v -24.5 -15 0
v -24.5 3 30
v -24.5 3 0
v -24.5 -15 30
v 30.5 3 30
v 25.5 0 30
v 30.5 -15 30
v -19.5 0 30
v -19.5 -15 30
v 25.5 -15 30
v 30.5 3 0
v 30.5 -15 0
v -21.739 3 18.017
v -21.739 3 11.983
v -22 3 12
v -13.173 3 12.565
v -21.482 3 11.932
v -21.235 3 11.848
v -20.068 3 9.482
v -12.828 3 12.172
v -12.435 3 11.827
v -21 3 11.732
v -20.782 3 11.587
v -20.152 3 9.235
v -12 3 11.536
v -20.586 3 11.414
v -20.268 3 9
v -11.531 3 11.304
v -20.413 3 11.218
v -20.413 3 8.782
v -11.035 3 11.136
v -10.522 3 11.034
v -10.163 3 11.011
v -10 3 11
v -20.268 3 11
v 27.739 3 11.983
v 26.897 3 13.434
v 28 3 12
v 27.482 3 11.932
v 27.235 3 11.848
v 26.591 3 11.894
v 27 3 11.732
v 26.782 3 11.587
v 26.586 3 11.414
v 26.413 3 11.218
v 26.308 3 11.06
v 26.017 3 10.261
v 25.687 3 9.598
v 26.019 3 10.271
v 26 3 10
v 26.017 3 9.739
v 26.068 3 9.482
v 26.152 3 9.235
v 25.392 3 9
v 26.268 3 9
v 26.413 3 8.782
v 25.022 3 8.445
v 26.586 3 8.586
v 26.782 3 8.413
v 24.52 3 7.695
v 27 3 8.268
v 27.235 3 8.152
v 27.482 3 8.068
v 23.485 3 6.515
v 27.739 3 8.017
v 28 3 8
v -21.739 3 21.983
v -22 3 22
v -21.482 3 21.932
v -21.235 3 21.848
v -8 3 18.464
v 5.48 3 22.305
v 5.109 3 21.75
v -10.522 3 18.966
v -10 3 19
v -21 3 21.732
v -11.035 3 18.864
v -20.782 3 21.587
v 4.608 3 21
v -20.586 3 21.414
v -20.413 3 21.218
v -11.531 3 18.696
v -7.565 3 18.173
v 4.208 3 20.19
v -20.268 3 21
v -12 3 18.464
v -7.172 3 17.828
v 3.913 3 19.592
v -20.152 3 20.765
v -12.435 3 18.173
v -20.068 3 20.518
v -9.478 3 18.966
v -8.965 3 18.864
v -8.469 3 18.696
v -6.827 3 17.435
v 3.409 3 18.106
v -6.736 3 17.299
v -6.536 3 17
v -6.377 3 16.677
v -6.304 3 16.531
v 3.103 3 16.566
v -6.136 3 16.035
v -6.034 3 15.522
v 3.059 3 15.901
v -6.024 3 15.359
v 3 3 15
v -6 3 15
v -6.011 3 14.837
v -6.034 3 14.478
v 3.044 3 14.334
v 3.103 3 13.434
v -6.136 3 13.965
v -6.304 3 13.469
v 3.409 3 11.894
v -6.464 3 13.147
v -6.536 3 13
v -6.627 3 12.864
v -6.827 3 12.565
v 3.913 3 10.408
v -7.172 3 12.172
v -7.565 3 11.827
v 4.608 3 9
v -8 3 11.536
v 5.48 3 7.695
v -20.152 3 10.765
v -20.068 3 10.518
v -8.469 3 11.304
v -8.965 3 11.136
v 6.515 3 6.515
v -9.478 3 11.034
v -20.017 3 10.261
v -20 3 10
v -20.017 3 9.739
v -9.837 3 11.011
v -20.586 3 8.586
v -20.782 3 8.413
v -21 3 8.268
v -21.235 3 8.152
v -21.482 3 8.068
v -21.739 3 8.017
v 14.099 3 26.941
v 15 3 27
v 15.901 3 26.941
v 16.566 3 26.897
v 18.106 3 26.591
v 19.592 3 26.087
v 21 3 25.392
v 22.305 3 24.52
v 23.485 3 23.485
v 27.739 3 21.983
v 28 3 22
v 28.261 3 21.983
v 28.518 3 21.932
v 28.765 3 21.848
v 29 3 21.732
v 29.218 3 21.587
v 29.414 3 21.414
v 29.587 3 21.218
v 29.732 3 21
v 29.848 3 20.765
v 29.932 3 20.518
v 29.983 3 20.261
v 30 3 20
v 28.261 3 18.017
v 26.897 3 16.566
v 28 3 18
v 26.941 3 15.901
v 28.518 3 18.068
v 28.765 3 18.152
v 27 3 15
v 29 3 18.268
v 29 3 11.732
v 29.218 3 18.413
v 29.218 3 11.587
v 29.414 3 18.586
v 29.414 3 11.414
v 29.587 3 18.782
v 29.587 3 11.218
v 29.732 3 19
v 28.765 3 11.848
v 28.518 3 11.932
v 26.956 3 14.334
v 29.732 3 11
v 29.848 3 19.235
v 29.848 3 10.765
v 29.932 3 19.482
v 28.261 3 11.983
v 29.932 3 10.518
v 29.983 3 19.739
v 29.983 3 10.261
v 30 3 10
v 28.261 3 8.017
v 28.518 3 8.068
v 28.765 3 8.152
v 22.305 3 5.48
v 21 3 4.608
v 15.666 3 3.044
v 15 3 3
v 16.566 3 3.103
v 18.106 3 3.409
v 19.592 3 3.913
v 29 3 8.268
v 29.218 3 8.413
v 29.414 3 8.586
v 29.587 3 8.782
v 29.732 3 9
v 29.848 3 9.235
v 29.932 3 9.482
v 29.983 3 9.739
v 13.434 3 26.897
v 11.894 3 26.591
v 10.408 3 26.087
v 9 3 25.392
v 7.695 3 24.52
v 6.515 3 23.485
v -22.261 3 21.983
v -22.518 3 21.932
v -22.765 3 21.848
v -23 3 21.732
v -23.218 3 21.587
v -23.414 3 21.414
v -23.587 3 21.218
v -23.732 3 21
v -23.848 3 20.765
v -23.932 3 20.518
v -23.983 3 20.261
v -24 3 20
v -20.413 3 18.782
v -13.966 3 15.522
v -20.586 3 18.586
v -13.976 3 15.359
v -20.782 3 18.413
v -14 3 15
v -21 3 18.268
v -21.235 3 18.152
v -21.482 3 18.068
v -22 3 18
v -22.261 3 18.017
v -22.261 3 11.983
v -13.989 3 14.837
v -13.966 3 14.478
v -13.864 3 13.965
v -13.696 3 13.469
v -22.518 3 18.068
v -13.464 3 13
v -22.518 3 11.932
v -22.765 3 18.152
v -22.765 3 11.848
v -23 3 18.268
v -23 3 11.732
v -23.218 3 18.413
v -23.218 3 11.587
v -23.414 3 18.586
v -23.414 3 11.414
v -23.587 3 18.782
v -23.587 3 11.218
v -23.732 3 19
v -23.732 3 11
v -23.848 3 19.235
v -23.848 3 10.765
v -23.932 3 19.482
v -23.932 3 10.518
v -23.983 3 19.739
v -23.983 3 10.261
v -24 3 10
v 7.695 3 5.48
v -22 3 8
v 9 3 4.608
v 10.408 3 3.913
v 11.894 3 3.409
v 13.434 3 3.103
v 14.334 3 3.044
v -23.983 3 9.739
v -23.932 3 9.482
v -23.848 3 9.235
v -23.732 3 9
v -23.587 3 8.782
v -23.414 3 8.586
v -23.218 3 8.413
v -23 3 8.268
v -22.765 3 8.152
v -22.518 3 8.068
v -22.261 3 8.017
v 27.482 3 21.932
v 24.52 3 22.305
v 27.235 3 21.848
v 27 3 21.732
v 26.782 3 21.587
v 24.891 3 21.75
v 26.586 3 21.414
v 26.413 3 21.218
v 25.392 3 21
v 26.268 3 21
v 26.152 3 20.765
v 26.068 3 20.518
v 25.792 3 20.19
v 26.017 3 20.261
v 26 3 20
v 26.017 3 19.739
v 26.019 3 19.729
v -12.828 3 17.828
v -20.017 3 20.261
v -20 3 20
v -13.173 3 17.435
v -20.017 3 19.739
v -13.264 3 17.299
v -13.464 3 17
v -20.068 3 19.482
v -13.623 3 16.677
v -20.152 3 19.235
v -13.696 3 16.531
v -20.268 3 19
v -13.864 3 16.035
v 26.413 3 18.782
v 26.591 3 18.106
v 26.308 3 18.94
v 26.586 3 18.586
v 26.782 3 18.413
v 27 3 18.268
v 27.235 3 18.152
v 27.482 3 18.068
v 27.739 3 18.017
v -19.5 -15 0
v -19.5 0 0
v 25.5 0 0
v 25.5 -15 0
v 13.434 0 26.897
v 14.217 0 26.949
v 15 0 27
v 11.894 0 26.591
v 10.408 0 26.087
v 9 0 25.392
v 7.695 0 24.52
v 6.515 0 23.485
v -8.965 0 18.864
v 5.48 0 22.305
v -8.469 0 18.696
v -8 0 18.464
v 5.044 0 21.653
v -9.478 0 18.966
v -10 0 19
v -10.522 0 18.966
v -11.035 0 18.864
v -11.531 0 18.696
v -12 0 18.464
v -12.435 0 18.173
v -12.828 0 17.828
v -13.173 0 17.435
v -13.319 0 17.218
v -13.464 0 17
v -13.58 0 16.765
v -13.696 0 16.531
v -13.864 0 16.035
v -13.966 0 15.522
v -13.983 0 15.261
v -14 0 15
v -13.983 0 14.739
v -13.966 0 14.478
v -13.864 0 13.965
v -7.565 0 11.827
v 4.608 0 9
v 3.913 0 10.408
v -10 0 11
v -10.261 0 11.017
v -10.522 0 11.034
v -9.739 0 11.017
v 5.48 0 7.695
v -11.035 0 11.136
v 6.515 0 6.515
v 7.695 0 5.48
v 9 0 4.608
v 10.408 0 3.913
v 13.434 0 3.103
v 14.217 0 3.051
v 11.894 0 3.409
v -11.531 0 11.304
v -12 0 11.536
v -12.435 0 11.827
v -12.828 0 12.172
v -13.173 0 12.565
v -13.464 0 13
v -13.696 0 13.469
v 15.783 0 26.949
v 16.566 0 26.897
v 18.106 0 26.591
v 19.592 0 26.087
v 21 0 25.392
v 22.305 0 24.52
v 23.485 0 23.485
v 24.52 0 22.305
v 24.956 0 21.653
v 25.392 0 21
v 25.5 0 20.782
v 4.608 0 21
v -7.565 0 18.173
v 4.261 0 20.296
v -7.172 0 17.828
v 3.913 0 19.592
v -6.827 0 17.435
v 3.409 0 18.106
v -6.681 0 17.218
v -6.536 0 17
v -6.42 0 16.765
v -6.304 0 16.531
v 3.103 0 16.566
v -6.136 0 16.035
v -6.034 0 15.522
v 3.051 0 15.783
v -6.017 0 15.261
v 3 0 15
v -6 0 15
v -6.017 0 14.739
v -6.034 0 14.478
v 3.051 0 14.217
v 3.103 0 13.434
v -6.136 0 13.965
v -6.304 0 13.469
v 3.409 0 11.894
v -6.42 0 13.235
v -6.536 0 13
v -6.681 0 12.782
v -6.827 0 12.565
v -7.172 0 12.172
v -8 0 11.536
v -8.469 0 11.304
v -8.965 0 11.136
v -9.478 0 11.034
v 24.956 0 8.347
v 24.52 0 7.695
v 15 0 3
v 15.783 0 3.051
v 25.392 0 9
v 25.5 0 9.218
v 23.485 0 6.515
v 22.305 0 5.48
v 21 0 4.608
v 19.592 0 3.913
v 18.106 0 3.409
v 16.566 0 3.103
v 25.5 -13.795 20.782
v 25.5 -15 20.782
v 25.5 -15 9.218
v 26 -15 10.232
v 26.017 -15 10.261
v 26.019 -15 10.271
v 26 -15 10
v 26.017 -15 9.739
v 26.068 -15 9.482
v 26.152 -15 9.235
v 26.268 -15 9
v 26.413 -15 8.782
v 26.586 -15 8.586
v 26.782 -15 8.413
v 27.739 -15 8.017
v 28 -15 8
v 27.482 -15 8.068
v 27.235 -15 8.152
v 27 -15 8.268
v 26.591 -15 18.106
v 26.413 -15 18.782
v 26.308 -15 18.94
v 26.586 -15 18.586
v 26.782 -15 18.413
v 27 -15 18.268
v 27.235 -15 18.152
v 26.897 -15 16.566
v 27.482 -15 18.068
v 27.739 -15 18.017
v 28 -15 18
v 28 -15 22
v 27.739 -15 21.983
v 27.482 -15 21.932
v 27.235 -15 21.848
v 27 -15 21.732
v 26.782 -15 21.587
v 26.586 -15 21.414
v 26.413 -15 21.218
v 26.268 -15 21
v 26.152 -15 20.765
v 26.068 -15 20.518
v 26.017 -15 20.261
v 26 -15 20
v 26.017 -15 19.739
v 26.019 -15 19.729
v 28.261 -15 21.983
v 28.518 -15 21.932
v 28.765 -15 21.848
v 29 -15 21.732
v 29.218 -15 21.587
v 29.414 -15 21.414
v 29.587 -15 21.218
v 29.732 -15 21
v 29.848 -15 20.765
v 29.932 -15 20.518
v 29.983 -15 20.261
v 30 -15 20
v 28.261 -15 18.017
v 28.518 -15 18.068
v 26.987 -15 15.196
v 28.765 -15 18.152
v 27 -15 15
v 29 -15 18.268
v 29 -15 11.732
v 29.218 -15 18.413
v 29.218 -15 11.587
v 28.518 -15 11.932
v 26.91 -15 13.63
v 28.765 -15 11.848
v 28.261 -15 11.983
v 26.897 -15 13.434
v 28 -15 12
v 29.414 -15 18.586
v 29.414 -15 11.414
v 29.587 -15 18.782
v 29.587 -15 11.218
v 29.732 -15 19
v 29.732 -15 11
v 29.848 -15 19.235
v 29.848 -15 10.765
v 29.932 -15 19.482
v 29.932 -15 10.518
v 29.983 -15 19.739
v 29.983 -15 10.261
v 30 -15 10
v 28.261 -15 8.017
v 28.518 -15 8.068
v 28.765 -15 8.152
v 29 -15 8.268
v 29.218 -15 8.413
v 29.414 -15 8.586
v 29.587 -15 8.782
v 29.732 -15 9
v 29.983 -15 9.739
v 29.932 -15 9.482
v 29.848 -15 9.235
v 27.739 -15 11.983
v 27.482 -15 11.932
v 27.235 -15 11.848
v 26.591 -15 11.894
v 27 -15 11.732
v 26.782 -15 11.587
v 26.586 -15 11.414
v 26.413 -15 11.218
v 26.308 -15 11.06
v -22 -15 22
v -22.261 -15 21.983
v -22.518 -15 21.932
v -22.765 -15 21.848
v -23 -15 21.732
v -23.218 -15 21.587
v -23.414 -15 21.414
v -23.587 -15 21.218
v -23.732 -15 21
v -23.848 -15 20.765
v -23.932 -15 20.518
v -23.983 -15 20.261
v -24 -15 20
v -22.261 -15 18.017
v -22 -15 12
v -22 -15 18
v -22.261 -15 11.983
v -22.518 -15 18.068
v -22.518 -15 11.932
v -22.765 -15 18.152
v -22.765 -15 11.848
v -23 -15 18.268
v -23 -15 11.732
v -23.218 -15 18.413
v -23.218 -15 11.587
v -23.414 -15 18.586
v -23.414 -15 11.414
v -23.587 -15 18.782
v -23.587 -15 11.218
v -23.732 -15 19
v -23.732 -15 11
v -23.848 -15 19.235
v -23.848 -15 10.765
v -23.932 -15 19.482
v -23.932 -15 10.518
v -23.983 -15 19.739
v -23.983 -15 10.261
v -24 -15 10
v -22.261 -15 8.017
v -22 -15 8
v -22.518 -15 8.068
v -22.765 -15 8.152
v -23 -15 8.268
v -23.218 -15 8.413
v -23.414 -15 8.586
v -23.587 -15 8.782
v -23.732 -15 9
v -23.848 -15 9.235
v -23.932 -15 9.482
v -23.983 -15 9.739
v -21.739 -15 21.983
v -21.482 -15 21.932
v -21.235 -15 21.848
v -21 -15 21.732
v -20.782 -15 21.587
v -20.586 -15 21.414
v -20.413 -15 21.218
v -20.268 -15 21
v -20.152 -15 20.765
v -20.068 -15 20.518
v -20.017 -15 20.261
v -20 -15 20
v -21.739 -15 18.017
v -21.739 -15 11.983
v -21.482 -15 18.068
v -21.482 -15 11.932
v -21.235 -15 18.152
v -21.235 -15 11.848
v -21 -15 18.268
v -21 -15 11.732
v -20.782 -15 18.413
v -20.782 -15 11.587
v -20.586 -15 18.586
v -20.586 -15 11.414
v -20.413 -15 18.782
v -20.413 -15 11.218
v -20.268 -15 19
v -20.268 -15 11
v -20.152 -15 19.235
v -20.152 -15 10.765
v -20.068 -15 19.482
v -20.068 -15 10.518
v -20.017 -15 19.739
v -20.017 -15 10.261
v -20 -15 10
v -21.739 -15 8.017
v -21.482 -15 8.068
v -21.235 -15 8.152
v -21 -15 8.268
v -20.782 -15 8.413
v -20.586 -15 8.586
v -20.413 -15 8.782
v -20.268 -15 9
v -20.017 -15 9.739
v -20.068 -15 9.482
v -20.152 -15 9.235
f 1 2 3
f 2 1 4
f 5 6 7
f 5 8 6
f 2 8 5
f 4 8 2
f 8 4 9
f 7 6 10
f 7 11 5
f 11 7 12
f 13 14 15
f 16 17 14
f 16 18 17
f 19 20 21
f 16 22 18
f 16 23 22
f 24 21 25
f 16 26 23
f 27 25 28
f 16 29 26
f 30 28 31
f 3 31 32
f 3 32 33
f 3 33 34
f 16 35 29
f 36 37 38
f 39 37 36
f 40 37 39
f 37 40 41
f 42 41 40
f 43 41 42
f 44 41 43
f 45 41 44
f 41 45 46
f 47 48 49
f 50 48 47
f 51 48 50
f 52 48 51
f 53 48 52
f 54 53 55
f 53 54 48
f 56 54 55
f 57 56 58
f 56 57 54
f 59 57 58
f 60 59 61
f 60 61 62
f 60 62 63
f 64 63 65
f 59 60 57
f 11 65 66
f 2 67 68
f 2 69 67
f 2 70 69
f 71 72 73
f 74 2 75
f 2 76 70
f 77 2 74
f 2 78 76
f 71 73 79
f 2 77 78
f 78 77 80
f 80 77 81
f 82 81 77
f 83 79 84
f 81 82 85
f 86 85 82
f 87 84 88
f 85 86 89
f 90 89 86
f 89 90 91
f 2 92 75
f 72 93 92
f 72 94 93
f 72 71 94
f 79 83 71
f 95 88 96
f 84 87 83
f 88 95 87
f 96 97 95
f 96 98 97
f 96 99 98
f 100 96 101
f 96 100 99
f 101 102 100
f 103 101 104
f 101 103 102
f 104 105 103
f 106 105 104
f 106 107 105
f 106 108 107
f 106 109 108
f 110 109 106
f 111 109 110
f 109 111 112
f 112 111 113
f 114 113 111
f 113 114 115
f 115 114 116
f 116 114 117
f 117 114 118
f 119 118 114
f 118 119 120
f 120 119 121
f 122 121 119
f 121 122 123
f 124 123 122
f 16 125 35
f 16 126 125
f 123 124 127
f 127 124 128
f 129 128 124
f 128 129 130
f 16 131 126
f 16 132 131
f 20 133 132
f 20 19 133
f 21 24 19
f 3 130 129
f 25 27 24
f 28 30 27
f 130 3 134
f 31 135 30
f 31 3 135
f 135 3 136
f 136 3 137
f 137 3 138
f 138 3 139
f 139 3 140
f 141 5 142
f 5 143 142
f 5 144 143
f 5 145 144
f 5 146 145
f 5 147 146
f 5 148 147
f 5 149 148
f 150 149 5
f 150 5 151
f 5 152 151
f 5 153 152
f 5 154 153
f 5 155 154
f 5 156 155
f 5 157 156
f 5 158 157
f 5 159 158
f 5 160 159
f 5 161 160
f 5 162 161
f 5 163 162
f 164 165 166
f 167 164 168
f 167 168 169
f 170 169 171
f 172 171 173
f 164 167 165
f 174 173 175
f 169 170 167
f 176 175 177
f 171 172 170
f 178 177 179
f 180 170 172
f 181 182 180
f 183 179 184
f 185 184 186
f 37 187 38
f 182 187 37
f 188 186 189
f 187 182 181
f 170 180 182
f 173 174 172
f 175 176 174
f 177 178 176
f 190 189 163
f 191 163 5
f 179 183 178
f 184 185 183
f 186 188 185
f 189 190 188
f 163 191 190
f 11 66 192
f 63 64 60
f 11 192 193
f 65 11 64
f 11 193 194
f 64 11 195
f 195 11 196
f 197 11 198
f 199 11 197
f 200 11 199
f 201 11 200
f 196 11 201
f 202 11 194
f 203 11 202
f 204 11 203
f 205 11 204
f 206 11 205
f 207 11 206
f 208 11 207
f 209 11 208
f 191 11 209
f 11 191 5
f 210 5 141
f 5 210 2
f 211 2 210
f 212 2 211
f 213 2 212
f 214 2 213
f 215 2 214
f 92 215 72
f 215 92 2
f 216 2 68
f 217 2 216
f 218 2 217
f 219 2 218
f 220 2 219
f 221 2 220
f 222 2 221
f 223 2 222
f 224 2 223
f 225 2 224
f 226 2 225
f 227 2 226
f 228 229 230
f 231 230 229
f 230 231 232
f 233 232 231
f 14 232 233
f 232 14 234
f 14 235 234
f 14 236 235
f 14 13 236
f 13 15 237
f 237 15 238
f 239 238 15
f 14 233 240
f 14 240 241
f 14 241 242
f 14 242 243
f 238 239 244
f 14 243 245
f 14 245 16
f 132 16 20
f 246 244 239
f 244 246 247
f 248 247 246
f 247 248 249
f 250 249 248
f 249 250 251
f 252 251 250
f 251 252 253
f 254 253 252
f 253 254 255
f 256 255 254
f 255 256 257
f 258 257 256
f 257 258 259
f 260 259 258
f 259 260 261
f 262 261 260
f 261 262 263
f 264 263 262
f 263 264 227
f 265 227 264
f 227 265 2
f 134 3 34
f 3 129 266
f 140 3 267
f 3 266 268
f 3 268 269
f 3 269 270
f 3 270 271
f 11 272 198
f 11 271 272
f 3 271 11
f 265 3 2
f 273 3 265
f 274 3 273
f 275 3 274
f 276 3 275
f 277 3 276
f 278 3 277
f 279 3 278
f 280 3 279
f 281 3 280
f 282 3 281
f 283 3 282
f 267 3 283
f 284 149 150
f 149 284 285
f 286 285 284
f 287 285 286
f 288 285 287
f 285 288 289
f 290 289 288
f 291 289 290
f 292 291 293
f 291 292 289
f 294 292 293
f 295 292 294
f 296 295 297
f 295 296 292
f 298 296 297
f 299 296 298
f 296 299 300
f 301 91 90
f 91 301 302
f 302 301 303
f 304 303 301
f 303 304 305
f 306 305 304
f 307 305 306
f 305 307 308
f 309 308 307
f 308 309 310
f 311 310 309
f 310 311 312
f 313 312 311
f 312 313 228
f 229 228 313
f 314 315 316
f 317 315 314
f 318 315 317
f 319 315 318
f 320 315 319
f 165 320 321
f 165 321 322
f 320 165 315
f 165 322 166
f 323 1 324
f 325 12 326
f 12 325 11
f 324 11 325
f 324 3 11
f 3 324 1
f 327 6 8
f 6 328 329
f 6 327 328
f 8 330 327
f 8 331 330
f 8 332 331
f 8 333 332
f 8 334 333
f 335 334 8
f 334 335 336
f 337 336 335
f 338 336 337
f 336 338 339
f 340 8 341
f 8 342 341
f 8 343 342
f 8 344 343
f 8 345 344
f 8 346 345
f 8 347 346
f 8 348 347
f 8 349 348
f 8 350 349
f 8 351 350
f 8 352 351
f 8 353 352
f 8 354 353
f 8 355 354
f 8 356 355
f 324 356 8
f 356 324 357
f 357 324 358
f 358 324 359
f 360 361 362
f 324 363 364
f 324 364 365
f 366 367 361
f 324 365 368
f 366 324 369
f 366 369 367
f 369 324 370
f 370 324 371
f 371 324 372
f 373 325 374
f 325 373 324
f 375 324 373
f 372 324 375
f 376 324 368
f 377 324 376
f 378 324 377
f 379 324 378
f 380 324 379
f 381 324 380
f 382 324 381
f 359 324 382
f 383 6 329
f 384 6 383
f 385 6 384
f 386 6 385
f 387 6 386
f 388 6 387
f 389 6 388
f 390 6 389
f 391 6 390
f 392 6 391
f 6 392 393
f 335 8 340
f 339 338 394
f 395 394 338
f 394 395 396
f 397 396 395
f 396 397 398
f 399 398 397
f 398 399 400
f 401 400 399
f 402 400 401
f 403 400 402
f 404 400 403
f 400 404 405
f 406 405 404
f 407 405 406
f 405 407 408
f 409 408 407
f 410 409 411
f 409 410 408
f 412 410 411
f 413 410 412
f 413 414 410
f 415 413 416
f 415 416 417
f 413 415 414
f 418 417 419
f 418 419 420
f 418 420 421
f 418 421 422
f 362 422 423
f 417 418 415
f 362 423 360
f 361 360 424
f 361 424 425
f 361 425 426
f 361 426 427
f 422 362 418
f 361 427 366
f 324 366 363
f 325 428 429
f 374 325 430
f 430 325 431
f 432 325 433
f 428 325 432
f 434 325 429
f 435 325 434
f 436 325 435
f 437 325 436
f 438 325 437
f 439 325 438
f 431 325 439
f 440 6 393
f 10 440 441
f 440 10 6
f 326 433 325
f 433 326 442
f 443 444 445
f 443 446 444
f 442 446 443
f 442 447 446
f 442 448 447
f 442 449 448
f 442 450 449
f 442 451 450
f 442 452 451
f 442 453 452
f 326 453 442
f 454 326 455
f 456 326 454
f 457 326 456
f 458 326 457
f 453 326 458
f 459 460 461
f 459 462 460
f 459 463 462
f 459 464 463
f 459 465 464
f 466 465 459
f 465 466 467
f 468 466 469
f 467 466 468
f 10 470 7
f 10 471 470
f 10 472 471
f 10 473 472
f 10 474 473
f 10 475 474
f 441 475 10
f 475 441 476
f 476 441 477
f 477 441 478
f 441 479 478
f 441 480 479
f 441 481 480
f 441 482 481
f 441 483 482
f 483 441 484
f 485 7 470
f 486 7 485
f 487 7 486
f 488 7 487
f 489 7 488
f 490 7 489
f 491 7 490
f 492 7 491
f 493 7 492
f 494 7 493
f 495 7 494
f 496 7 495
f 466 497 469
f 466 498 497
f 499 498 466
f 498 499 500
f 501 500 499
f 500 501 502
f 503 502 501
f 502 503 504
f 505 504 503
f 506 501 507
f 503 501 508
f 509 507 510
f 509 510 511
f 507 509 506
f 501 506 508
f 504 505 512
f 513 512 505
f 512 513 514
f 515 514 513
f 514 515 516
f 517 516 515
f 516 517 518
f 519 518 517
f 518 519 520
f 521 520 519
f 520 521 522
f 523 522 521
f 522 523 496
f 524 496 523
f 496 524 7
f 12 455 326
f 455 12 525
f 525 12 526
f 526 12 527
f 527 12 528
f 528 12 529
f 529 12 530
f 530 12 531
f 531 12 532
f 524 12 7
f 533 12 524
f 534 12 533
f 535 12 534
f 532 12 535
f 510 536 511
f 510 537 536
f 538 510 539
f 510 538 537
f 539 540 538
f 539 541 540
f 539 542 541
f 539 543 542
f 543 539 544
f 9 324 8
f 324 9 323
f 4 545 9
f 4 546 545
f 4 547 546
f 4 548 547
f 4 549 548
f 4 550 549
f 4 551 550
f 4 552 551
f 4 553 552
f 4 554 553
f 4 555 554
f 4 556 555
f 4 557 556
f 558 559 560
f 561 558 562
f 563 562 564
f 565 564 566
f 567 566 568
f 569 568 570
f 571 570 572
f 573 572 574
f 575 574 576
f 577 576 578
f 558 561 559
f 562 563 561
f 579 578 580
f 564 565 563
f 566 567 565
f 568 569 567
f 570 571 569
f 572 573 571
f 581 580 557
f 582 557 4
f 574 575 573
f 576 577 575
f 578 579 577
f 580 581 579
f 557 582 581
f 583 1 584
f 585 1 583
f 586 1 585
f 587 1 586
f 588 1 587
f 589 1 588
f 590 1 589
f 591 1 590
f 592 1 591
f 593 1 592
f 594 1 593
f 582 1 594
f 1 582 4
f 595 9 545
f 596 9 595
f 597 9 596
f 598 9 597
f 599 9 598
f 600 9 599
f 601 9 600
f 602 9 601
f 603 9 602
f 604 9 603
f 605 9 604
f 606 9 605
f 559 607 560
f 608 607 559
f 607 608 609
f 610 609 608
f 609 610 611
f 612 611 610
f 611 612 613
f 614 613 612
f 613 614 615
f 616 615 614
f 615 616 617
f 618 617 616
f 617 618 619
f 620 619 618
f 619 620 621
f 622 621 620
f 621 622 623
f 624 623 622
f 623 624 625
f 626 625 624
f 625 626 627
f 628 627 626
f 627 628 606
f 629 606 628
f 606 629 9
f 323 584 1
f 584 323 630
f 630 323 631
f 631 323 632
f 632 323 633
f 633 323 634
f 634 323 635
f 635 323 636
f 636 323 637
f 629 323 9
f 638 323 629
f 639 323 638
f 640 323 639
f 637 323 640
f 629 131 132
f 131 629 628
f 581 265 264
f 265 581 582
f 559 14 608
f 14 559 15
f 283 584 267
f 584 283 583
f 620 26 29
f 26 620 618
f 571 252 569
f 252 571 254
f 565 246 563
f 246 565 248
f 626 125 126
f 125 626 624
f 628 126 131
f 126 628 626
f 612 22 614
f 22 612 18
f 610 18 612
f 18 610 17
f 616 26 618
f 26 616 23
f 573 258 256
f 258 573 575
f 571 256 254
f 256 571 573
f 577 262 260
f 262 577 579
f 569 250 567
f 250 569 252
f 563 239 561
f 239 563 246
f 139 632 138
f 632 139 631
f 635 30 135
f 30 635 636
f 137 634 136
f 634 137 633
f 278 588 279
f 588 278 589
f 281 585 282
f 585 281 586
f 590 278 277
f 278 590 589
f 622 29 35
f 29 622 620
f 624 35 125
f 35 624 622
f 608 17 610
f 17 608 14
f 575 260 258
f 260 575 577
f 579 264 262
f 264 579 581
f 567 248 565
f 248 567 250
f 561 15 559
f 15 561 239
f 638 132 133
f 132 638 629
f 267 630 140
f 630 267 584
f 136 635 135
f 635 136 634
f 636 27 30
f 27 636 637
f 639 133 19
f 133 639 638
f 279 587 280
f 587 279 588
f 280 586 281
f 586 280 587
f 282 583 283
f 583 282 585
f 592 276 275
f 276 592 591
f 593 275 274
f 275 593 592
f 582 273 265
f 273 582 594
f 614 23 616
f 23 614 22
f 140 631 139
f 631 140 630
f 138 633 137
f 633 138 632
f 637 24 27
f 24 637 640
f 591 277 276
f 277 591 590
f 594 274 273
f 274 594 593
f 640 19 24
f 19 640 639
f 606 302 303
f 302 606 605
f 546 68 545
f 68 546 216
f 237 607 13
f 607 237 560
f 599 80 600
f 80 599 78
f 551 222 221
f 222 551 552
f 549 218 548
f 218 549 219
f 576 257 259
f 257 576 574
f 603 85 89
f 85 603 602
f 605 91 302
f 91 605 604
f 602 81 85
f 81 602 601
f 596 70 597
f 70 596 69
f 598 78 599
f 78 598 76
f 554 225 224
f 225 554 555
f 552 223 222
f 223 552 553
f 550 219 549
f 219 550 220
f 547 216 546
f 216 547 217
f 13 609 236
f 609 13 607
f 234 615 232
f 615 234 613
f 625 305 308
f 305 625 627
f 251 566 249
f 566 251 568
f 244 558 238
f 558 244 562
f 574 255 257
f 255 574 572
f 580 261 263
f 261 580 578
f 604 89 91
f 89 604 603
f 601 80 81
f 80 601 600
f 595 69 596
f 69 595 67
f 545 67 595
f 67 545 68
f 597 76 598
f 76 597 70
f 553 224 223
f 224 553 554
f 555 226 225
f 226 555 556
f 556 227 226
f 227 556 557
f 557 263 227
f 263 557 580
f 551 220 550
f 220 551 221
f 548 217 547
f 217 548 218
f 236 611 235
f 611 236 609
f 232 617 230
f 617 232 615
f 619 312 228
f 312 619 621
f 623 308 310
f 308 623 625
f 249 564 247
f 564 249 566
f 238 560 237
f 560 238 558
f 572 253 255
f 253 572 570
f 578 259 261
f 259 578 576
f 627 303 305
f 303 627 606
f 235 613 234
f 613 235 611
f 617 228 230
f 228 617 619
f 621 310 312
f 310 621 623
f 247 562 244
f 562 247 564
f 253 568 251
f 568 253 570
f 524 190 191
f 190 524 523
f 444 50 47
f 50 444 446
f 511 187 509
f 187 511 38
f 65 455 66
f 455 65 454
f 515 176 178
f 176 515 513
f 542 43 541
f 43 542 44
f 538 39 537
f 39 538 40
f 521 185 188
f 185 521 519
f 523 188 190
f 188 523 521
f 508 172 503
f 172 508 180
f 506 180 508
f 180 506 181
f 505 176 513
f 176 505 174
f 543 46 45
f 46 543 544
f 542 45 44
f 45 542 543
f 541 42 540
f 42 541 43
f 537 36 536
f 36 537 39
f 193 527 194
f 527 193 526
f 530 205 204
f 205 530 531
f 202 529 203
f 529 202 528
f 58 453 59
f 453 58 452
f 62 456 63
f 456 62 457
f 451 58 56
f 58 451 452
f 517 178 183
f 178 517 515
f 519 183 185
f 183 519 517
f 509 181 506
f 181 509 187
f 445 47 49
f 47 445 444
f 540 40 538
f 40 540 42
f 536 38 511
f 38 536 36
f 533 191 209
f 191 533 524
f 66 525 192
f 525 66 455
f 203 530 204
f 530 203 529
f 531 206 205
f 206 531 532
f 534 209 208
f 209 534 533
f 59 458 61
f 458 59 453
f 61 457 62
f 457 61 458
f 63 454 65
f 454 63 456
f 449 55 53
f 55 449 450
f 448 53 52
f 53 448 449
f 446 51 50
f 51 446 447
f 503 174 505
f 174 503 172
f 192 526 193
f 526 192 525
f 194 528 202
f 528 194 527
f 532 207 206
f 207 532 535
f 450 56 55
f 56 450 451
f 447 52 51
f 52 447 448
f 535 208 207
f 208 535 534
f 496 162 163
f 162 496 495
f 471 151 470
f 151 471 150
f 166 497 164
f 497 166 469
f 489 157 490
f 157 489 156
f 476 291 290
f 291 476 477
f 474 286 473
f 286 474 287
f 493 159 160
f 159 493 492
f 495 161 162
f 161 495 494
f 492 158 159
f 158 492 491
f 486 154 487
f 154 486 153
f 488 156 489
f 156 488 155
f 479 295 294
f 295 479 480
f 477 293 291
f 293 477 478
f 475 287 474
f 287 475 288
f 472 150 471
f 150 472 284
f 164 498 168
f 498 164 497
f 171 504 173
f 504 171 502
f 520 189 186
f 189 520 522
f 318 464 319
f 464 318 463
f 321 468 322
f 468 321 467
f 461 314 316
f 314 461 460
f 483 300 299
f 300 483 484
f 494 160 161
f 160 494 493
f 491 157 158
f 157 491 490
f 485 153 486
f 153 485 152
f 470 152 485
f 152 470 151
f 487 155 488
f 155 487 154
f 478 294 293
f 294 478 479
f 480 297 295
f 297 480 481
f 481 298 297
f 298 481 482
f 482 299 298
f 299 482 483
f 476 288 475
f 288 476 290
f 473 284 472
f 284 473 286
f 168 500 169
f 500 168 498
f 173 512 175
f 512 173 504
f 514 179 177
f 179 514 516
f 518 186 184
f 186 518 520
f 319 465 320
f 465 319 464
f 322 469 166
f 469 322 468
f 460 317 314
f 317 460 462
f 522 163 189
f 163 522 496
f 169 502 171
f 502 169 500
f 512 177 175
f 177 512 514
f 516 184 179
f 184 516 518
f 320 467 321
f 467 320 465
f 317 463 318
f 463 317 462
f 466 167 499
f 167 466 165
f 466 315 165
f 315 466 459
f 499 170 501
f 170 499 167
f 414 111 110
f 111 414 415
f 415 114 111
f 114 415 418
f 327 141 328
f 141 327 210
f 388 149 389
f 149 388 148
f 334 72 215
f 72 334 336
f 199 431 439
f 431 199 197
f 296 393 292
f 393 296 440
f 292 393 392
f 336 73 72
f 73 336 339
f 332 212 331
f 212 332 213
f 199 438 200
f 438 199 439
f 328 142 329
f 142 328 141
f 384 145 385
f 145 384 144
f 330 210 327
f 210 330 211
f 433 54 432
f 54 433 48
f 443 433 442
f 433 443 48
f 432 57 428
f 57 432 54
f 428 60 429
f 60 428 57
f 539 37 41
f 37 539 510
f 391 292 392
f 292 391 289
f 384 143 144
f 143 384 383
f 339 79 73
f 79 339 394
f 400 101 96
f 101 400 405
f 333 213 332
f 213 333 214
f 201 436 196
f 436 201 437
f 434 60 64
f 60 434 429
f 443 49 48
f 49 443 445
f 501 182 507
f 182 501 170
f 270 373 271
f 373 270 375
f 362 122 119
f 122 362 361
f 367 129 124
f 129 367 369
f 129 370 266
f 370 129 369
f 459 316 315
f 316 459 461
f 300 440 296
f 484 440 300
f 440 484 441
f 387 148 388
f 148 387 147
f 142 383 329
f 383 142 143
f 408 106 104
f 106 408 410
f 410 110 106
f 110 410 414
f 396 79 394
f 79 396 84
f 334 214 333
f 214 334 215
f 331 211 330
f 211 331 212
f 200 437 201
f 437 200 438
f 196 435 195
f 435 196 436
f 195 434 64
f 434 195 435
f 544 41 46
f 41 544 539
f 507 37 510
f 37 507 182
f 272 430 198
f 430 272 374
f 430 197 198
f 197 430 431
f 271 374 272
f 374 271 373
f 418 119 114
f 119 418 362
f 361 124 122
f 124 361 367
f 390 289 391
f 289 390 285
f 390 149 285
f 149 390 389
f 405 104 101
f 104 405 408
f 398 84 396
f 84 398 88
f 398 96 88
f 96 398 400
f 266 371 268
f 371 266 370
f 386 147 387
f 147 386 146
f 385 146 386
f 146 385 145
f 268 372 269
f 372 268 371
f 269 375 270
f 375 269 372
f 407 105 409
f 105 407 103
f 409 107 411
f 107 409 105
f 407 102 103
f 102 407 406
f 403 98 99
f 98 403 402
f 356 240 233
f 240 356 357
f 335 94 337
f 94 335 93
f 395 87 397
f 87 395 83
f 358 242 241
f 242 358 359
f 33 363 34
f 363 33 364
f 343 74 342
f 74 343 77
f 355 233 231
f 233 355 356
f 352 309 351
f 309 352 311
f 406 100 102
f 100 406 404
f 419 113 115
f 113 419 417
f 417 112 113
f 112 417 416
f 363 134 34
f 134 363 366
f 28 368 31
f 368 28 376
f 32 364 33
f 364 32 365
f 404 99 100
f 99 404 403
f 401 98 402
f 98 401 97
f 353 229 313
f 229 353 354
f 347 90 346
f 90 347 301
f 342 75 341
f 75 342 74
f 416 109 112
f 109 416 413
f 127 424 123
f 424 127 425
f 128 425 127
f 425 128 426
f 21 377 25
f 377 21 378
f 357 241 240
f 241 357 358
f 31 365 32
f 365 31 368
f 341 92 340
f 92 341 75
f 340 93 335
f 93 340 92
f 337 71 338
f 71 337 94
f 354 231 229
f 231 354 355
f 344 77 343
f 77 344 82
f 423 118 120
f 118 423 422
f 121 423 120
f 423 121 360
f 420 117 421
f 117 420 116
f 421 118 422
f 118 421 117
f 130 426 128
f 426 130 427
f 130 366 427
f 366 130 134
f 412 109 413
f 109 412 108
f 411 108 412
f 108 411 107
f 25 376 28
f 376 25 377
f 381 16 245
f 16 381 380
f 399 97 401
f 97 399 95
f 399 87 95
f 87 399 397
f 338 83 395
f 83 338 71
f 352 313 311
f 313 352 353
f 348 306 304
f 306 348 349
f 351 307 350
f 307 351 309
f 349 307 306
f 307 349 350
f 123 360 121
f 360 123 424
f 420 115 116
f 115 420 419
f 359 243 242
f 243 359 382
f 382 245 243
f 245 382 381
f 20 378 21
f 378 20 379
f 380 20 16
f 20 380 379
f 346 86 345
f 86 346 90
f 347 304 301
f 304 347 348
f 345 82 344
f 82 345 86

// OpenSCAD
supportLength = 78;
supportWidth = 30;

supportThickness = 2;

mountSeparation = 50;
mountWidth = 5;
mountDepth = 15;
mountSpacing = 10;

shaftOffset = 13;//11.5;

bracePadding = 0;
braceDepth = 30;
braceThickness = 3;


maxReinforcingThickness = 8;
minReinforcingThickness = 2;

webThickness = 1;
webDepth = 8;

braceOffset = shaftOffset + (mountWidth - supportWidth)/2;
braceLength = mountSeparation + mountWidth;

topHolesOffset = 20;
bottomHolesOffset = 60;

holeDepth = 8;
holeOffset = 8;
holeRadius = 2;

bigHoleDepth = 1.5;
bigHoleRadius = 12;

bottomBraceThickness=2;
bottomHoleRadius = 4;

holeOffset = 8;
holeRadius = 2;

holeFacets = 48;


difference() {
    union() {
      //  cube([supportWidth,supportLength,supportThickness]);
        translate([supportWidth - braceLength + braceOffset,0,0])
            cube([braceLength,braceThickness,
                  braceDepth+bracePadding]);
      /*  translate([0,supportLength,0])
            cube([supportWidth,
                  bottomBraceThickness,
                  bracePadding+braceDepth/2]); 
        
        translate([0,0,supportThickness])
            cube([webThickness, supportLength, webDepth]);
        translate([supportWidth-webThickness,0,supportThickness])
            cube([webThickness, supportLength, webDepth]);*/
        translate([supportWidth - mountWidth + braceOffset,
                  -mountDepth,0])
            cube([mountWidth,mountDepth,braceDepth+bracePadding]);
        translate([supportWidth-braceLength + braceOffset,
                  -mountDepth,0])
            cube([mountWidth,mountDepth,braceDepth+bracePadding]);


       /* translate([supportWidth,braceThickness,supportThickness])
            Reinforcement();
        
        translate([supportWidth,
                   supportLength,supportThickness])
            rotate([90,0,0])
                 Reinforcement();
        
        translate([supportWidth/2,
                   supportLength+bottomBraceThickness,
                   bracePadding + braceDepth/2])
            rotate([90,0,0])
                cylinder(r=supportWidth/2,h=bottomBraceThickness,
                         $fn=holeFacets); */
  
    }

 /*   translate([supportWidth/2, topHolesOffset, 0])
        Holes();
    translate([supportWidth/2,
               bottomHolesOffset, 0])
        Holes();*/
    translate([supportWidth-braceLength +
               mountWidth/2 + braceOffset,
               0,bracePadding + braceDepth/2])
        MountHoles();
    translate([supportWidth - mountWidth +
               mountWidth/2 + braceOffset,
               0,bracePadding + braceDepth/2])
        MountHoles();
    
    translate([supportWidth/2,0,bracePadding + braceDepth/2])
        rotate([90,0,0])
            cylinder(r=bigHoleRadius,h=40,
                     center=true, $fn=holeFacets);
    
    translate([supportWidth/2-25,0,bracePadding + braceDepth/2])
        rotate([90,0,0])
            cylinder(r=bottomHoleRadius,h=16,
                     center=true, $fn=holeFacets); 
}

module Reinforcement() {
    color("green")
    rotate([0,-90,0]) {
    linear_extrude(height=supportWidth/2,
                   scale=minReinforcingThickness/
                         maxReinforcingThickness)
      polygon(points=[[-.1,-.1],
                      [maxReinforcingThickness,-.1],
                      [-.1,maxReinforcingThickness]]);

    translate([0,0,supportWidth/2])
        linear_extrude(height=supportWidth/2,
                       scale=maxReinforcingThickness/
                             minReinforcingThickness)
            polygon(points=[[-.1,-.1],
                            [minReinforcingThickness,-.1],
                            [-.1,minReinforcingThickness]]);

    }
}

module MountHoles() {
    rotate([90,0,0])
        translate([0,-mountSpacing/2,0]) {
        cylinder(r=holeRadius,h=40,
                 center=true, $fn=holeFacets); 
        translate([0,mountSpacing,0])
            cylinder(r=holeRadius,h=40,
                 center=true, $fn=holeFacets); 
    }
}

module Holes() {
    translate([holeOffset,0,0])
        cylinder(r=holeRadius,h=holeDepth,
                 center=true, $fn=holeFacets);
    translate([-holeOffset,0,0])
        cylinder(r=holeRadius,h=holeDepth,
                 center=true, $fn=holeFacets);
    translate([0,holeOffset,0])
        cylinder(r=holeRadius,h=holeDepth,
                 center=true, $fn=holeFacets);
    translate([0,-holeOffset,0])
        cylinder(r=holeRadius,h=holeDepth,
                 center=true, $fn=holeFacets);
}
